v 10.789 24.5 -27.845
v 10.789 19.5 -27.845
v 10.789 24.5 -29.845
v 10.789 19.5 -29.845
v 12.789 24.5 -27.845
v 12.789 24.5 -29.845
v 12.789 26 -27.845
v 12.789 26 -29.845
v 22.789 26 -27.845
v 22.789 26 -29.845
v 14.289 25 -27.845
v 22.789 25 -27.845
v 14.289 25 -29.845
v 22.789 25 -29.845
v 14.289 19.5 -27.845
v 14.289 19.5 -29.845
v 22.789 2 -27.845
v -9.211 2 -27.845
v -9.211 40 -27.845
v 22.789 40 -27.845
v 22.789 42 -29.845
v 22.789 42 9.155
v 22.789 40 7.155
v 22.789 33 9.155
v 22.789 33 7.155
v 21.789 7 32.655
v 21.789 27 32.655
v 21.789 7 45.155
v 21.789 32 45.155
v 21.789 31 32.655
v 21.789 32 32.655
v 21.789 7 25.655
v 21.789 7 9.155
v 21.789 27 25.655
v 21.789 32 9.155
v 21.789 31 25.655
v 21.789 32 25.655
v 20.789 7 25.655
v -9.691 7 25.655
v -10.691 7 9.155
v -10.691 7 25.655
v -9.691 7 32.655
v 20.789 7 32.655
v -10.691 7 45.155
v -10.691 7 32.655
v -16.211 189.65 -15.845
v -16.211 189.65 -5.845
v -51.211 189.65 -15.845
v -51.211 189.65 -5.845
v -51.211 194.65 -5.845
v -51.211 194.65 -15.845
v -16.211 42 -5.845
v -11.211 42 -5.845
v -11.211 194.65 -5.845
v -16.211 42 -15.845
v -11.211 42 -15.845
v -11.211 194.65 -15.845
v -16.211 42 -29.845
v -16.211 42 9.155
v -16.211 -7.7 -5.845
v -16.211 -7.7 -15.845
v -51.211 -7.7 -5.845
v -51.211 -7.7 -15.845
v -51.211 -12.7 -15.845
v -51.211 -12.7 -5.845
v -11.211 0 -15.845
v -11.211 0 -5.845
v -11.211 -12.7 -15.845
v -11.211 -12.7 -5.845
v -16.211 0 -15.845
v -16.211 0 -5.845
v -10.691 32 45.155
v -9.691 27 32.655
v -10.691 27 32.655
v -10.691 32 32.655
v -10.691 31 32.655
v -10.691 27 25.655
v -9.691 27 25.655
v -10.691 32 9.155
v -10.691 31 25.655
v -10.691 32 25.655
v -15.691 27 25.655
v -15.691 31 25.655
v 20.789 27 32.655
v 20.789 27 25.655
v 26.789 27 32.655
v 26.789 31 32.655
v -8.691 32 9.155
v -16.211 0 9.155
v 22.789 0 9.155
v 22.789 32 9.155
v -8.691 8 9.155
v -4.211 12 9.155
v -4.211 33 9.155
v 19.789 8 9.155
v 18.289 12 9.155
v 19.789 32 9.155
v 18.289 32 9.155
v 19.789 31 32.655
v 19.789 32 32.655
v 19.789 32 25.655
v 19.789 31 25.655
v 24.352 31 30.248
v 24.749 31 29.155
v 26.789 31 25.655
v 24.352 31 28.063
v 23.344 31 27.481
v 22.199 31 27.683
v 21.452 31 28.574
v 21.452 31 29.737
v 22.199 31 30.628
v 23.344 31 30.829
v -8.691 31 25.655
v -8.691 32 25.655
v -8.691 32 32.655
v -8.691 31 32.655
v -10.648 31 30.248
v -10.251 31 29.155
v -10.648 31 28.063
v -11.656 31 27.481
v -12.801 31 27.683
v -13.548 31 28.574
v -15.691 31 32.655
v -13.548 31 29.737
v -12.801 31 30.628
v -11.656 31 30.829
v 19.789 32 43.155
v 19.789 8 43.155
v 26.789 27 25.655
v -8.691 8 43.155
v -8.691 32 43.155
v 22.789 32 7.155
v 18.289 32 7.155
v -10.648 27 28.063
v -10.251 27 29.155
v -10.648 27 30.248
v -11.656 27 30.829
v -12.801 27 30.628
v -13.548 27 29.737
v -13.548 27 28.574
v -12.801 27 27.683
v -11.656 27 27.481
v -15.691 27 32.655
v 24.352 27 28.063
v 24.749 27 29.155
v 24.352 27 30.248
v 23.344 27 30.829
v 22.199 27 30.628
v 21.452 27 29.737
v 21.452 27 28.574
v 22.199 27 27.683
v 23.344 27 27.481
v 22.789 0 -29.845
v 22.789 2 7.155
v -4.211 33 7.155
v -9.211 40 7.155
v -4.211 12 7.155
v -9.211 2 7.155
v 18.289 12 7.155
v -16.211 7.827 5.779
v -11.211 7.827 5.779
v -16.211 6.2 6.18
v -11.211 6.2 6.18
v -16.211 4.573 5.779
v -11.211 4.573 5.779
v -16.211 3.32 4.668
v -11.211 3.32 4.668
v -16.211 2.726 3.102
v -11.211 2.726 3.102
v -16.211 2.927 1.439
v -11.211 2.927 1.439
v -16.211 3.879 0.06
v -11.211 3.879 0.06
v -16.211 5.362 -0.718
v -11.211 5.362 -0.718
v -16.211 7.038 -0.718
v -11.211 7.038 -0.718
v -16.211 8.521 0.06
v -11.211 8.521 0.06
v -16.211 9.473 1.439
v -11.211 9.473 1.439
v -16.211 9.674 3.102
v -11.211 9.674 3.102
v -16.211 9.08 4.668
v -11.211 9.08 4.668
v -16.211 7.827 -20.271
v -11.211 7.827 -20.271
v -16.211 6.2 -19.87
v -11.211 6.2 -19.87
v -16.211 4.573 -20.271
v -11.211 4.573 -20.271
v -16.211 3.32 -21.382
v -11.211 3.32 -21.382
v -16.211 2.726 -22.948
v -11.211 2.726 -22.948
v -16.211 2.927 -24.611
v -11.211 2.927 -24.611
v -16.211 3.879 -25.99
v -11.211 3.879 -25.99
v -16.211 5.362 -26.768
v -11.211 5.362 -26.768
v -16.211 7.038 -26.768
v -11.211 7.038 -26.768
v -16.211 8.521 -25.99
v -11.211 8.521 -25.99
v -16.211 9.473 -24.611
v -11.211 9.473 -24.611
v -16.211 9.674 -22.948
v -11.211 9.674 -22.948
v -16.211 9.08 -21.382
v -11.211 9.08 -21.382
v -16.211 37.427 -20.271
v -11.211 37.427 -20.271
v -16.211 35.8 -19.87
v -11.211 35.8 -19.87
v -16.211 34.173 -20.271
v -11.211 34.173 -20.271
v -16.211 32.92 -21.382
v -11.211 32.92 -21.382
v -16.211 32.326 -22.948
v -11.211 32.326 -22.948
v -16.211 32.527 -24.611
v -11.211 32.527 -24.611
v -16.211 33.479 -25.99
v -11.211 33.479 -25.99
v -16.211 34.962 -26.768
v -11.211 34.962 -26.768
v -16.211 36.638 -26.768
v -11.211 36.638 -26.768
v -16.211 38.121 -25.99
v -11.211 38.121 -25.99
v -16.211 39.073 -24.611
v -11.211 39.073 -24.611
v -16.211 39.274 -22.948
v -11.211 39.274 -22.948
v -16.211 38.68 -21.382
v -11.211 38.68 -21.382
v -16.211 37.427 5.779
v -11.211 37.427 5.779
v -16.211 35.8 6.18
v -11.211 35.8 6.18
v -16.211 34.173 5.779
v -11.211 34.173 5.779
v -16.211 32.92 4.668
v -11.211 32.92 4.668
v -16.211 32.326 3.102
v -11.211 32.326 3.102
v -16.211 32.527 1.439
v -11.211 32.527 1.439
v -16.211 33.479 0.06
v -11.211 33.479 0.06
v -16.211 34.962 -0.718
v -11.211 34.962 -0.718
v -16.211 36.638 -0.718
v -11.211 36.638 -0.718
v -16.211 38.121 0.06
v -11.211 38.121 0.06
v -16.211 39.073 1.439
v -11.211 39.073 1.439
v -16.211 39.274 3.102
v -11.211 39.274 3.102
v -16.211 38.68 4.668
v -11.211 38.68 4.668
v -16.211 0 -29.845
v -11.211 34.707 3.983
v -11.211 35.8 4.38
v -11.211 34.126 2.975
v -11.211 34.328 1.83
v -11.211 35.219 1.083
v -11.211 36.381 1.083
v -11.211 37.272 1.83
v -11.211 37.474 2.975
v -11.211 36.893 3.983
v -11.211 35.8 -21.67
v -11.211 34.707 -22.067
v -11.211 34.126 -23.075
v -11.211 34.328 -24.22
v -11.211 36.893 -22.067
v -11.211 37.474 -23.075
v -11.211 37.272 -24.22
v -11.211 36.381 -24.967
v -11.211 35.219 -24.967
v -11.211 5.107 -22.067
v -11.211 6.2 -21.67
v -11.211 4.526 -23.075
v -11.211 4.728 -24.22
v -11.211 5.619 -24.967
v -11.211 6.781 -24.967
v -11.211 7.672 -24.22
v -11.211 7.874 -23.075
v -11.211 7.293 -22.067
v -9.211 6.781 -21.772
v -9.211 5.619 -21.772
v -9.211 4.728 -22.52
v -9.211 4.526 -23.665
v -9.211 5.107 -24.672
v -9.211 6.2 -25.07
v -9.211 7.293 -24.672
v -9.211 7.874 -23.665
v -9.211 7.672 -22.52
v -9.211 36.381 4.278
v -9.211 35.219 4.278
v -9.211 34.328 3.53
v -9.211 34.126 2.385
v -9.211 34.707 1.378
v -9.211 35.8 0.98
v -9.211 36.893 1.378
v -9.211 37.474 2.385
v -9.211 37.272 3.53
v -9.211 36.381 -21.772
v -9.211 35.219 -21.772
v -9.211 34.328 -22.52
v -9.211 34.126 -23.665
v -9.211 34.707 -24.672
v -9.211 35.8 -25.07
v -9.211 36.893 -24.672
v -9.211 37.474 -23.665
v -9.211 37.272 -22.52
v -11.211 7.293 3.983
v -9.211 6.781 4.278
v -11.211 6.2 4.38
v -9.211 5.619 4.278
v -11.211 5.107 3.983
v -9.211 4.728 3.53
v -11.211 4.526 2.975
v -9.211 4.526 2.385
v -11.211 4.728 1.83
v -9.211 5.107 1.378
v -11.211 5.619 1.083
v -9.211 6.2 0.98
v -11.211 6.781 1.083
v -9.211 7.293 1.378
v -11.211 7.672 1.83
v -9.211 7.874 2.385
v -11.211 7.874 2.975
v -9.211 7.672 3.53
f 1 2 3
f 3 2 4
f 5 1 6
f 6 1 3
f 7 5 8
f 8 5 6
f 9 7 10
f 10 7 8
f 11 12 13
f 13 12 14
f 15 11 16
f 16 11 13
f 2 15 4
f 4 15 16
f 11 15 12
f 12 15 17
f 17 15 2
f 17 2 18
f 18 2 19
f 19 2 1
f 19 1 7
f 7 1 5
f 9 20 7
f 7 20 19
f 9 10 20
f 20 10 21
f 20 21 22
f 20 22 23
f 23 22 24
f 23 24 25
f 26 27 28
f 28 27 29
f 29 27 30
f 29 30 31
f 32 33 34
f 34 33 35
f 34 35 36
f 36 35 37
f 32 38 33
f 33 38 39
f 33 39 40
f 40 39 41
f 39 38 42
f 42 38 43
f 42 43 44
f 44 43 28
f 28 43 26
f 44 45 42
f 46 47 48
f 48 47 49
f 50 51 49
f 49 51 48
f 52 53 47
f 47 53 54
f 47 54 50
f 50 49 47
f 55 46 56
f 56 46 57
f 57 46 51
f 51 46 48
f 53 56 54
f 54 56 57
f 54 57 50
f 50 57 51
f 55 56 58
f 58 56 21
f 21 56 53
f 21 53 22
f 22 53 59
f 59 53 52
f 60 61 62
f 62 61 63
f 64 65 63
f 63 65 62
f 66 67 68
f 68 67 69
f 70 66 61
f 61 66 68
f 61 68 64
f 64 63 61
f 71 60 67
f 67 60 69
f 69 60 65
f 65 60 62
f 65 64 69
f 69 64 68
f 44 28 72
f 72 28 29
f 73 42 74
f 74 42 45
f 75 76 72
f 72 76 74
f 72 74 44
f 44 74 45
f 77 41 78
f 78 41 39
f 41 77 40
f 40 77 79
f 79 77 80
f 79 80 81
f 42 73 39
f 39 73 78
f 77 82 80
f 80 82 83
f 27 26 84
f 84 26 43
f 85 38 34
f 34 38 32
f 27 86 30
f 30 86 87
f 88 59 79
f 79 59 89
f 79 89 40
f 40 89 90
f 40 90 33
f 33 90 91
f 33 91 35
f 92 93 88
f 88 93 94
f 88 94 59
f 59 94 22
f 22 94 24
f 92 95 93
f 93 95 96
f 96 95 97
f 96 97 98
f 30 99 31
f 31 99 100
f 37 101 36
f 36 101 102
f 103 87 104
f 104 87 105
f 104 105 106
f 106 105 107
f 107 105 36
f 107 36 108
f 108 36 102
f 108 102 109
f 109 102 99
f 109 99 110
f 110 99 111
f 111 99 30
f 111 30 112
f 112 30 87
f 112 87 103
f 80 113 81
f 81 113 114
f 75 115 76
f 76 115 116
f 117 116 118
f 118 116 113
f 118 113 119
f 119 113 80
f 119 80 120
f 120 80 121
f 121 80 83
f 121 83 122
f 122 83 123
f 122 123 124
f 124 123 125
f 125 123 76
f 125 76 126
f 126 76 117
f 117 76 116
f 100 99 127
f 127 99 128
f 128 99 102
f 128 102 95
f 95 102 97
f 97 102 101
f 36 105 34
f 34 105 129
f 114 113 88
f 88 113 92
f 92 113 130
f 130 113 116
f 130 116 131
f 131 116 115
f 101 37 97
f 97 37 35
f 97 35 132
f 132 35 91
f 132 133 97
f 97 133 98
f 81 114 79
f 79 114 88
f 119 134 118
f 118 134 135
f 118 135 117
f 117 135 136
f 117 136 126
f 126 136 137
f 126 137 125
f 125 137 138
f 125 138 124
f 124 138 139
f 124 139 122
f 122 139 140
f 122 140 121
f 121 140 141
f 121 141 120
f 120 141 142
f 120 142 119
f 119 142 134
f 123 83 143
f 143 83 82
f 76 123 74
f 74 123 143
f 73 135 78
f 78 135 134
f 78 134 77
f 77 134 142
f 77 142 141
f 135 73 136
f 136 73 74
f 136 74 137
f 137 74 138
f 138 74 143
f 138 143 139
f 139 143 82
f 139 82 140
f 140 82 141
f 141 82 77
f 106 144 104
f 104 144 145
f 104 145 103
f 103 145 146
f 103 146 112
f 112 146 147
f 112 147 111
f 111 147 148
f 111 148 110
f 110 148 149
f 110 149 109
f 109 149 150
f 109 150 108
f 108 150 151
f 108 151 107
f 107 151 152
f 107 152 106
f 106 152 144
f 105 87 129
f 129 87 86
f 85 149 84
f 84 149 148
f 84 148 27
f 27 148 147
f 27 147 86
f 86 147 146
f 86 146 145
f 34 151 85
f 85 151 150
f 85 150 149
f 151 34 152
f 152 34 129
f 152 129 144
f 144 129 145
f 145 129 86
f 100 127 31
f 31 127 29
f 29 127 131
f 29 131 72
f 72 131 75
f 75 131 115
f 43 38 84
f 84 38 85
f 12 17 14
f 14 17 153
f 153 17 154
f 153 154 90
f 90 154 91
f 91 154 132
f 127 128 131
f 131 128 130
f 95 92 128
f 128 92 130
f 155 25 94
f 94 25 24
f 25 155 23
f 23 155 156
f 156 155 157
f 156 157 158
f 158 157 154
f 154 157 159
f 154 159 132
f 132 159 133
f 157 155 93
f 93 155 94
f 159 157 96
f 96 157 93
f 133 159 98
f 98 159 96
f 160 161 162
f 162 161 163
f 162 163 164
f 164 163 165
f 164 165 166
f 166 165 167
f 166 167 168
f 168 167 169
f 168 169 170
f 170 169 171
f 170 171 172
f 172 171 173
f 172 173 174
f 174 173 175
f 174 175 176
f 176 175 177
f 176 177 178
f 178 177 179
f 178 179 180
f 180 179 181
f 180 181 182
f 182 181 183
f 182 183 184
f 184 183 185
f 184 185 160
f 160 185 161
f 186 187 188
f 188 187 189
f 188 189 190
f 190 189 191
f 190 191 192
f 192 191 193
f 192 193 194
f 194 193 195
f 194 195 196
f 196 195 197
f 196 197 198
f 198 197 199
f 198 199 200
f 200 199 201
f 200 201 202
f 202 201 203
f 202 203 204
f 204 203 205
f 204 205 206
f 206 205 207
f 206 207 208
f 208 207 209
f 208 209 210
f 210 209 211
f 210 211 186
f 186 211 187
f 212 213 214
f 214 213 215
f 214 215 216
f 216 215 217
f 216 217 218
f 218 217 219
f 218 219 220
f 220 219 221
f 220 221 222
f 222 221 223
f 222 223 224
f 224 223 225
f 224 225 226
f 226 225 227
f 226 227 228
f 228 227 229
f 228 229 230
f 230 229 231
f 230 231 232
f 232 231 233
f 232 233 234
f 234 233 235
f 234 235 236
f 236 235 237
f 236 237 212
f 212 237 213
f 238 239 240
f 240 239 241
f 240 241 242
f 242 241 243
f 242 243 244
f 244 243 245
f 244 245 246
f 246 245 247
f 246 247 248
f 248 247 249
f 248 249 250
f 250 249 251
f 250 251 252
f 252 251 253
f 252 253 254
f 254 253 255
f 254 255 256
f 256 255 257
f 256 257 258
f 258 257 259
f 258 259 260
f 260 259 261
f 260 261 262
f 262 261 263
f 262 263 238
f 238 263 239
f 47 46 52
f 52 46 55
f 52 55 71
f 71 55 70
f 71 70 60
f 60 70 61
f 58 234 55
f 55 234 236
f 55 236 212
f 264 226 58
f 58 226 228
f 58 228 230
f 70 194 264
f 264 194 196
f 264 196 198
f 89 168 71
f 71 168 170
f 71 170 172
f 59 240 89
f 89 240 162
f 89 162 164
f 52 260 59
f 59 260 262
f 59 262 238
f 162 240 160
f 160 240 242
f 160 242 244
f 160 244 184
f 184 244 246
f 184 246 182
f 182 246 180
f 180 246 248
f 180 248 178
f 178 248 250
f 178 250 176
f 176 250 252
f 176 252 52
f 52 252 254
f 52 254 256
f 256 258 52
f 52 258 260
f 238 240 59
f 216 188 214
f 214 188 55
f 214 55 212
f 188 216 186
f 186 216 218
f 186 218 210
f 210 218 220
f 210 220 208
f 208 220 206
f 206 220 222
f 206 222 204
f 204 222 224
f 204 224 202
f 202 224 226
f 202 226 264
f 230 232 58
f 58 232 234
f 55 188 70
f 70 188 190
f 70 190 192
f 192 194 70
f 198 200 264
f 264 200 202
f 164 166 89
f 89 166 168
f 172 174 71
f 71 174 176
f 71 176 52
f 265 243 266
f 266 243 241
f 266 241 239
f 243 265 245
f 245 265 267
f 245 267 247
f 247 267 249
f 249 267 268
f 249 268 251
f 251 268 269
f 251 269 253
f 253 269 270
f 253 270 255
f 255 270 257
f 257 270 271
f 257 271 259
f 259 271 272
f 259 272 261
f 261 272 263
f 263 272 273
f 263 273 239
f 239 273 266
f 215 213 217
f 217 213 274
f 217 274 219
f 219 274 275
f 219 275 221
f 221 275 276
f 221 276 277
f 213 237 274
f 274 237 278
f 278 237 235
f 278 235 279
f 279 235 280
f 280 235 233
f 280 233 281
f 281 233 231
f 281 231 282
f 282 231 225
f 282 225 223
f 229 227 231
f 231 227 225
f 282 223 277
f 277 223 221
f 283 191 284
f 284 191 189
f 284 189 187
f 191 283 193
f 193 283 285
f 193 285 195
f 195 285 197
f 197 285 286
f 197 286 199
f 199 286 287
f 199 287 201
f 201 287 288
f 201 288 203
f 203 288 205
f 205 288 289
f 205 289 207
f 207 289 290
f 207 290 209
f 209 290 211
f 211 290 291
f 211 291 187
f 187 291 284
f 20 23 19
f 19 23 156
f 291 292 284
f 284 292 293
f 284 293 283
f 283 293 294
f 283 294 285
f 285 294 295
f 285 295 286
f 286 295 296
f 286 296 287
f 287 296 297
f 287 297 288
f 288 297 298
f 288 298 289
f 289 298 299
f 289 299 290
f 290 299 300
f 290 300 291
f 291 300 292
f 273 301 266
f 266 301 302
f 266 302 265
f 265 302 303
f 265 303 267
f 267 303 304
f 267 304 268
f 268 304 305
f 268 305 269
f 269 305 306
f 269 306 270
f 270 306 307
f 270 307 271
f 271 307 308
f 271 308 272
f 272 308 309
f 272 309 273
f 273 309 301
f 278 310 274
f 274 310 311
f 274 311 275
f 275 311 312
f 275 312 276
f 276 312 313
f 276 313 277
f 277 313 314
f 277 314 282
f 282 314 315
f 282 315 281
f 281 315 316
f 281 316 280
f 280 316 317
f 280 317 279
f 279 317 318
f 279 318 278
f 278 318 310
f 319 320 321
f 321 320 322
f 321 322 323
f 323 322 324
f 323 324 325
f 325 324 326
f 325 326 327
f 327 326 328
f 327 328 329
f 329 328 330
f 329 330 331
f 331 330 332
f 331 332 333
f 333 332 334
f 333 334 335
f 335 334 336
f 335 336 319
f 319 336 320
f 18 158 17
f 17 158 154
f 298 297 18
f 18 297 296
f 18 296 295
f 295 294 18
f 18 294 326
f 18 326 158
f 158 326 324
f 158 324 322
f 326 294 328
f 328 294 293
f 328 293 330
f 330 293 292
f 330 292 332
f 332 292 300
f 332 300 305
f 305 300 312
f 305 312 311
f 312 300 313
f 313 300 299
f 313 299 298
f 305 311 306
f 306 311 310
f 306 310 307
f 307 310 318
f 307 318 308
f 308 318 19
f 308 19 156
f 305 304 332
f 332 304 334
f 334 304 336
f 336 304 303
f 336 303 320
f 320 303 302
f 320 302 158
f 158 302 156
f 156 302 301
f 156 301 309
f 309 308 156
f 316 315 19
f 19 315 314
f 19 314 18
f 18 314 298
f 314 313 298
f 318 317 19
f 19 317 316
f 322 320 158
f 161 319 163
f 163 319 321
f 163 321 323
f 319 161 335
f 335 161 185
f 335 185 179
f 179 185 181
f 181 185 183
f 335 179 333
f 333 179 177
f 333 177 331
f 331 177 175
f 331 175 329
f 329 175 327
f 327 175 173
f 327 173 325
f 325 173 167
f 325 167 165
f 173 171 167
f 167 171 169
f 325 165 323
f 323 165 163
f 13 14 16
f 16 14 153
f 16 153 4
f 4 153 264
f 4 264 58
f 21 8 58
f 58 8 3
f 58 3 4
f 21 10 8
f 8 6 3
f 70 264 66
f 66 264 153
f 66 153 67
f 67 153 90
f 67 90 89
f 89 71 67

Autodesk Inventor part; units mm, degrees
ref_plane "YZ Plane" through (0, 0, 0) normal (1, 0, 0) x (0, 1, 0)
ref_plane "XZ Plane" through (0, 0, 0) normal (0, 1, 0) x (-1, 0, 0)
ref_plane "XY Plane" through (0, 0, 0) normal (0, 0, 1) x (1, 0, 0)
sketch "Sketch1" plane through (0, 0, 0) normal (0, 1, 0) x (-1, 0, 0)
  line L0 (9.2107, 7.1553) -> (-19.7893, 7.1553)
  line L1 (-19.7893, 7.1553) -> (-19.7893, -27.8447)
  line L2 (-19.7893, -27.8447) -> (9.2107, -27.8447)
  line L3 (9.2107, -27.8447) -> (9.2107, 7.1553)
  line L4 (9.2107, 7.1553) -> (11.2107, 7.1553)
  line L5 (11.2107, 7.1553) -> (11.2107, 9.1553)
  line L6 (11.2107, 9.1553) -> (-21.7893, 9.1553)
  line L7 (-21.7893, 9.1553) -> (-21.7893, -29.8447)
  line L8 (-21.7893, -29.8447) -> (11.2107, -29.8447)
  line L9 (11.2107, -29.8447) -> (11.2107, 7.1553)
  point P0 (0, 0)
  dimension "d0" = 29
  dimension "d1" = 35
  dimension "d2" = 2
  dimension "d3" = 2
  dimension "d4" = 33
  dimension "d5" = 39
extrude "Extrusion1" add sketch "Sketch1" along normal blind 2 contours L3 L2 L1 L0
extrude "Extrusion2" add sketch "Sketch1" along normal blind 40
sketch "Sketch2" plane through (21.7893, 0, -29.8447) normal (1, 0, 0) x (0, 0, -1)
  line L0 (-37, 2) -> (-37, 40) projected
  line L1 (-37, 40) -> (-37, 2)
  line L2 (-2, 2) -> (-2, 40) projected
  line L3 (-37, 2) -> (-2, 2)
  line L4 (-2, 2) -> (-2, 40)
  line L5 (-37, 40) -> (-2, 40) projected
  line L6 (-2, 40) -> (-37, 40)
extrude "Extrusion3" cut sketch "Sketch2" against normal blind 10
sketch "Sketch3" plane through (-9.2107, 2, -27.8447) normal (1, 0, 0) x (0, 0, -1)
  line L0 (0, 0) -> (0, 38) projected
  line L1 (0, 0) -> (0, 4.2)
  line L2 (0, 4.2) -> (-4.475, 4.2)
  line L3 (-35, 0) -> (-35, 38) projected
  line L4 (-4.475, 4.2) -> (-30.525, 4.2)
  line L5 (-30.525, 4.2) -> (-30.525, 33.8)
  line L6 (-30.525, 33.8) -> (-4.475, 33.8)
  line L7 (-4.475, 33.8) -> (-4.475, 4.2)
  point P0 (-27.8447, -2)
  dimension "d12" = 4.2
  dimension "d13" = 4.475
  dimension "d14" = 26.05
  dimension "d15" = 29.6
hole "Hole1" at (-9.2107, 35.8, 2.6803) at (-9.2107, 35.8, -23.3697) at (-9.2107, 6.2, -23.3697) at (-9.2107, 6.2, 2.6803) direction (-1, 0, 0) diameter 3.4 end through all clearance for "Flat Head Machine Screw" size "M3" standard "Ansi Metric M Profile"
sketch "Sketch4" plane through (-11.2107, 2, -27.8447) normal (1, 0, 0) x (0, 0, -1)
  line L0 (-37, 38) -> (-35, 38) projected
  line L1 (-37, 38) -> (2, 38)
  line L2 (2, 38) -> (2, 40)
  line L3 (2, 40) -> (-37, 40)
  line L4 (-37, 40) -> (-37, 38)
  point P0 (-27.8447, -2)
  dimension "d23" = 39
  dimension "d24" = 2
extrude "Extrusion4" add sketch "Sketch4" along normal blind 33
sketch "Sketch5" plane through (21.7893, 0, 9.1553) normal (1, 0, 0) x (0, 0, -1)
  point P0 (9.1553, 0)
sketch "Sketch6" plane through (-11.2107, 0, -29.8447) normal (-1, 0, 0) x (0, 0, 1)
  point P0 (29.8447, 0)
sketch "Sketch7" plane through (-11.2107, 0, -29.8447) normal (-1, 0, 0) x (0, 0, 1)
  circle A0 centre (6.475, 6.2) radius 1.7 projected
  circle A1 centre (32.525, 35.8) radius 1.7 projected
  circle A2 centre (6.475, 35.8) radius 1.7 projected
  circle A3 centre (32.525, 6.2) radius 1.7 projected
  line L0 (0, 0) -> (39, 0) projected
  line L1 (39, 0) -> (39, 42) projected
  line L2 (0, 42) -> (39, 42) projected
  line L3 (0, 0) -> (0, 42) projected
  circle A4 centre (6.475, 6.2) radius 1.7 projected
  circle A5 centre (6.475, 6.2) radius 3.5
  circle A6 centre (6.475, 35.8) radius 3.5
  circle A7 centre (32.525, 35.8) radius 3.5
  circle A8 centre (32.525, 6.2) radius 1.7 projected
  circle A9 centre (32.525, 6.2) radius 3.5
  point P0 (29.8447, 0)
  dimension "d27" = 7
  dimension "d28" = 7
  dimension "d29" = 7
  dimension "d30" = 7
extrude "Extrusion5" add sketch "Sketch7" along normal blind 5 contours L3 L2 L1 L0
sketch "Sketch8" plane through (21.7893, 0, 9.1553) normal (0, 0, 1) x (1, 0, 0)
  line L0 (0, 0) -> (0, 42) projected
  line L1 (0, 42) -> (0, 32)
  line L2 (0, 32) -> (-3.5, 32)
  line L3 (-3.5, 32) -> (-3.5, 12)
  line L4 (-3.5, 32) -> (16.5, 32) construction
  line L5 (-3.5, 12) -> (-26, 12)
  line L6 (-26, 12) -> (-26, 32)
  line L7 (-26, 32) -> (-3.5, 32)
  point P0 (-21.7893, 0)
  dimension "d33" = 10
  dimension "d34" = 3.5
  dimension "d35" = 20
  dimension "d36" = 90
  dimension "d37" = 22.5
extrude "Extrusion6" cut sketch "Sketch8" against normal blind 10
sketch "Sketch9" plane through (21.7893, 0, 9.1553) normal (0, 0, 1) x (1, 0, 0)
  line L0 (-26, 32) -> (-3.5, 32) projected
  line L1 (-26, 32) -> (-26, 33)
  line L2 (-26, 33) -> (0, 33)
  line L3 (0, 2) -> (0, 40) projected
  line L4 (0, 32) -> (-10.0622, 32)
  point P0 (-21.7893, 0)
  dimension "d40" = 1
extrude "Extrusion7" cut sketch "Sketch9" against normal blind 10
sketch "Sketch10" plane through (-16.2107, 42, 9.1553) normal (0, 0, 1) x (1, 0, 0)
  line L0 (38, -10) -> (34.5, -10) projected
  line L1 (38, -10) -> (38, -34)
  line L2 (38, -40) -> (38, -10) projected
  line L3 (0, -42) -> (0, 0) projected
  line L4 (38, -34) -> (7.52, -34)
  line L5 (7, -40) -> (7, -2) projected
  line L6 (7.52, -34) -> (7.52, -10)
  line L7 (7.52, -10) -> (38, -10)
  line L8 (38, -34) -> (38, -35)
  line L9 (38, -35) -> (6.52, -35)
  line L10 (6.52, -35) -> (6.52, -9)
  line L11 (6.52, -9) -> (38, -9)
  line L12 (38, -2) -> (38, -40) projected
  line L13 (38, -10) -> (38, -9)
  point P0 (16.2107, -42)
  dimension "d43" = 24
  dimension "d44" = 30.48
  dimension "d45" = 1
  dimension "d46" = 31.48
  dimension "d47" = 26
extrude "Extrusion8" add sketch "Sketch10" along normal blind 34 contours L0 L7 L6 L4 L2 L9 L5 L11 L12 | L5 L9 L10 L11
sketch "Sketch11" plane through (-9.6907, 9, 9.1553) normal (1, 0, 0) x (0, 0, -1)
  line L0 (-34, -2) -> (-34, -1) projected
  line L1 (-34, -2) -> (-35, -2)
  line L2 (-35, -2) -> (-35, 24)
  line L3 (0, 24) -> (-34, 24) projected
  line L4 (-35, 24) -> (-34, 24)
  line L5 (-34, 24) -> (-34, -2)
  point P0 (9.1553, -9)
  point P1 (0, 26)
  point P2 (-34, -1)
  dimension "d50" = 1
extrude "Extrusion9" add sketch "Sketch11" along normal blind 29.48
sketch "Sketch16" plane through (-9.6907, 7, 9.1553) normal (0, -1, 0) x (1, 0, 0)
  line L0 (0, 35) -> (29.48, 35) projected
  line L1 (29.48, 35) -> (30.48, 35)
  line L2 (30.48, 35) -> (30.48, 0)
  line L3 (30.48, 0) -> (29.48, 0)
  line L4 (29.48, 0) -> (29.48, 35)
  point P0 (9.6907, -9.1553)
  dimension "d69" = 1
  dimension "d70" = 35
extrude "Extrusion14" add sketch "Sketch16" against normal blind 26
sketch "Sketch17" plane through (-4.2107, 33, 9.1553) normal (0, 1, 0) x (1, 0, 0)
  line L0 (24, 0) -> (24, -34) projected
  line L1 (-4.48, -34) -> (24, -34) projected
  line L2 (24, -34) -> (-4.48, -34)
  line L3 (-4.48, 0) -> (-4.48, -34) projected
  line L4 (-4.48, -34) -> (-4.48, 0)
  line L5 (-4.48, 0) -> (26, 0)
  line L6 (25, -34) -> (25, 0) projected
  line L7 (0, 0) -> (26, 0) projected
  line L8 (-5.48, 0) -> (0, 0) projected
  line L9 (-5.48, 0) -> (-5.48, -35) projected
  line L10 (-5.48, -35) -> (25, -35) projected
  line L11 (25, -35) -> (25, -34) projected
  line L12 (26, -34) -> (25, -34) projected
  line L13 (26, 0) -> (26, -34) projected
  point P0 (4.2107, 9.1553)
extrude "Extrusion15" cut sketch "Sketch17" against normal blind 10 contours L0 L1 L3 L5
sketch "Sketch18" plane through (-9.6907, 33, 44.1553) normal (0, 1, 0) x (1, 0, 0)
  line L0 (1, 1) -> (1, 35) projected
  line L1 (0, 35) -> (1, 35) projected
  line L2 (0, 35) -> (0, 0) projected
  line L3 (0, 0) -> (30.48, 0) projected
  line L4 (30.48, 0) -> (30.48, 1) projected
  line L5 (29.48, 1) -> (1, 1) projected
  line L6 (31.48, 1) -> (30.48, 1) projected
  line L7 (31.48, 35) -> (31.48, 1) projected
  line L8 (29.48, 35) -> (29.48, 1) projected
  line L9 (29.48, 35) -> (31.48, 35) projected
  point P0 (9.6907, 44.1553)
extrude "Extrusion16" cut sketch "Sketch18" against normal blind 1
sketch "Sketch19" plane through (21.7893, 0, 9.1553) normal (1, 0, 0) x (0, 0, -1)
  line L0 (0, 0) -> (0, 7) projected
  line L1 (0, 0) -> (39, 0) projected
  line L2 (39, 0) -> (39, 42) projected
  line L3 (39, 42) -> (0, 42) projected
  line L4 (0, 33) -> (0, 42) projected
  line L5 (0, 33) -> (2, 33) projected
  line L6 (2, 33) -> (2, 40) projected
  line L7 (2, 40) -> (37, 40) projected
  line L8 (37, 40) -> (37, 2) projected
  line L9 (37, 2) -> (2, 2) projected
  line L10 (2, 2) -> (2, 32) projected
  line L11 (2, 32) -> (0, 32) projected
  line L12 (0, 8) -> (0, 32) projected
  line L13 (0, 8) -> (-34, 8) projected
  line L14 (-34, 7) -> (-34, 8) projected
  line L15 (0, 7) -> (-34, 7) projected
  line L16 (0, 7) -> (0, 8)
  line L17 (0, 0) -> (0, 42) projected
  point P0 (9.1553, 0)
extrude "Extrusion17" add sketch "Sketch19" along normal blind 1 contours L0 L16 L12 L11 L10 L9 L8 L7 L6 L5 L4 L3 L2 L1
sketch "Sketch20" plane through (-9.6907, 32, 44.1553) normal (0, 1, 0) x (1, 0, 0)
  line L0 (29.48, 1) -> (1, 1) projected
  line L1 (15.24, 1) -> (15.24, 15)
  line L2 (15.24, 15) -> (32.74, 15)
  line L3 (32.74, 15) -> (-2.26, 15)
  line L4 (1, 35) -> (1, 1) projected
  line L5 (1, 15) -> (1, 11.5)
  line L6 (1, 11.5) -> (-6, 11.5)
  line L7 (-6, 11.5) -> (-6, 18.5)
  line L8 (-6, 18.5) -> (1, 18.5)
  line L9 (1, 11.5) -> (1, 18.5)
  line L10 (29.48, 1) -> (29.48, 35) projected
  line L11 (29.48, 18.5) -> (36.48, 18.5)
  line L12 (36.48, 18.5) -> (36.48, 11.5)
  line L13 (36.48, 11.5) -> (29.48, 11.5)
  circle A0 centre (-2.26, 15) radius 1.7
  circle A1 centre (32.74, 15) radius 1.7
  point P0 (9.6907, 44.1553)
  point P1 (30.48, 1)
  dimension "d79" = 14
  dimension "d80" = 17.5
  dimension "d81" = 90
  dimension "d82" = 35
  dimension "d83" = 3.5
  dimension "d84" = 7
  dimension "d85" = 7
  dimension "d86" = 7
  dimension "d87" = 3.4
  dimension "d88" = 3.4
extrude "Extrusion18" add sketch "Sketch20" against normal blind 5 contours L10 L11 L12 L13 | L6 L7 L8 L4
sketch "Sketch21" plane through (-8.6907, 32, 43.1553) normal (0, 1, 0) x (1, 0, 0)
  line L0 (29.48, 17.5) -> (29.48, 10.5) projected
  line L1 (29.48, 17.5) -> (28.48, 17.5)
  line L2 (28.48, 0) -> (28.48, 34) projected
  line L3 (35.48, 10.5) -> (29.48, 10.5) projected
  line L4 (29.48, 10.5) -> (28.48, 10.5)
  line L5 (28.48, 10.5) -> (28.48, 17.5)
  line L6 (-1, 17.5) -> (-7, 17.5) projected
  line L7 (-1, 17.5) -> (0, 17.5)
  line L8 (0, 34) -> (0, 0) projected
  line L9 (-1, 10.5) -> (-1, 17.5)
  line L10 (-1, 34) -> (-1, -1) projected
  line L11 (-1, -1) -> (-1, 10.5) projected
  line L12 (-1, 10.5) -> (0, 10.5)
  line L13 (0, 10.5) -> (0, 17.5)
  line L14 (29.48, 10.5) -> (29.48, -1) projected
  line L15 (26.98, 36) -> (31.48, 36) projected
  line L16 (26.98, 34) -> (26.98, 36) projected
  line L17 (28.48, 34) -> (26.98, 34) projected
  line L18 (0, 34) -> (0, 0) projected
  line L19 (-1, 34) -> (0, 34) projected
  line L20 (-1, 17.5) -> (-1, 34) projected
  line L21 (-1, 17.5) -> (-7, 17.5) projected
  line L22 (-7, 17.5) -> (-7, 10.5) projected
  line L23 (-7, 10.5) -> (-1, 10.5) projected
  line L24 (-1, -1) -> (-1, 10.5) projected
  line L25 (29.48, -1) -> (-1, -1) projected
  line L26 (31.48, 34) -> (29.48, 34) projected
  line L27 (31.48, 36) -> (31.48, 34) projected
  line L28 (28.48, 0) -> (28.48, 34) projected
  line L29 (0, 0) -> (28.48, 0) projected
  line L30 (29.48, 10.5) -> (35.48, 10.5) projected
  line L31 (35.48, 10.5) -> (35.48, 17.5) projected
  line L32 (35.48, 17.5) -> (29.48, 17.5) projected
  line L33 (29.48, 34) -> (29.48, 17.5) projected
  point P0 (8.6907, 43.1553)
  point P1 (30.1371, 10.5)
  point P2 (29.48, 17.5)
  point P3 (-7, 17.5)
extrude "Extrusion19" cut sketch "Sketch21" against normal blind 1 contours L32 L31 L3 L0 | L0 L4 L2 L1 | L23 L22 L6 L9 | L9 L7 L8 L12
sketch "Sketch30" plane through (20.7893, 7, 44.1553) normal (1, 0, 0) x (0, 0, -1)
  line L0 (11.5, 25) -> (0, 25) projected
  line L1 (0, 0) -> (0, 25) projected
  line L2 (1, 0) -> (0, 0) projected
  line L3 (1, 0) -> (0, 0) projected
  line L4 (35, 0) -> (37, 0)
  line L5 (1, 1) -> (1, 0) projected
  line L6 (35, 1) -> (1, 1) projected
  line L7 (35, 25) -> (35, 1) projected
  line L8 (35, 25) -> (18.5, 25) projected
  line L9 (18.5, 24) -> (18.5, 20) projected
  line L10 (18.5, 20) -> (11.5, 20) projected
  line L11 (11.5, 20) -> (11.5, 24) projected
  line L12 (18.5, 25) -> (18.5, 24) projected
  line L13 (11.5, 24) -> (11.5, 25) projected
  line L14 (18.5, 20) -> (18.5, 0)
  line L15 (35, 0) -> (0, 0) projected
  line L16 (11.5, 20) -> (18.5, 20) projected
  line L17 (11.5, 20) -> (11.5, 0)
  line L18 (35, 1) -> (1, 1) projected
  line L19 (11.5, 1) -> (11.5, 0)
  line L20 (35, 0) -> (1, 0) projected
  line L21 (18.5, 1) -> (18.5, 0)
  point P0 (44.1553, -7)
extrude "Extrusion25" add sketch "Sketch30" along normal blind 1 contours L13 L11 L17 L6 L5 L2 L1 L0 | L9 L12 L8 L7 L6 L14
sketch "Sketch31" plane through (-9.6907, 7, 9.1553) normal (-1, 0, 0) x (0, 0, 1)
  line L0 (16.5, 20) -> (16.5, 24) projected
  line L1 (16.5, 25) -> (0, 25) projected
  line L2 (0, 0) -> (0, 25) projected
  line L3 (0, 0) -> (35, 0) projected
  line L4 (35, 25) -> (35, 0) projected
  line L5 (35, 25) -> (23.5, 25) projected
  line L6 (23.5, 24) -> (23.5, 20) projected
  line L7 (23.5, 20) -> (16.5, 20) projected
  line L8 (23.5, 25) -> (23.5, 24) projected
  line L9 (16.5, 24) -> (16.5, 25) projected
  line L10 (0, 0) -> (35, 0) projected
  line L11 (16.5, 20) -> (23.5, 20)
  line L12 (23.5, 20) -> (23.5, 0)
  line L13 (23.5, 0) -> (16.5, 0)
  line L14 (16.5, 0) -> (16.5, 20)
  point P0 (-9.1553, -7)
  point P1 (23.5, 20)
  point P2 (23.5, 0)
  point P3 (16.5, 0)
extrude "Extrusion26" add sketch "Sketch31" along normal blind 1 contours L14 L3 L2 L1 L9 L0 | L6 L8 L5 L4 L3 L12
sketch "Sketch32" plane through (21.7893, 7, 44.1553) normal (0, 0, 1) x (1, 0, 0)
  line L0 (0, 25) -> (-32.48, 25) projected
  line L1 (-32.48, 0) -> (-32.48, 25) projected
  line L2 (-32.48, 0) -> (0, 0) projected
  line L3 (0, 25) -> (0, 0) projected
  point P0 (-21.7893, -7)
extrude "Extrusion27" add sketch "Sketch32" along normal blind 1
sketch "Sketch25" plane through (0, 0, 0) normal (0, -1, 0) x (1, 0, 0)
  line L0 (-16.2107, -29.8447) -> (-16.2107, 9.1553) projected
  line L1 (-16.2107, 9.1553) -> (-16.2107, -5.8447)
  line L2 (-16.2107, -5.8447) -> (-16.2107, -15.8447)
  line L3 (-16.2107, -15.8447) -> (-11.2107, -15.8447)
  line L4 (-11.2107, -15.8447) -> (-11.2107, -5.8447)
  line L5 (-11.2107, -5.8447) -> (-16.2107, -5.8447)
  point P0 (0, 0)
  dimension "d118" = 15
  dimension "d119" = 10
  dimension "d120" = 5
extrude "Extrusion21" add sketch "Sketch25" along normal blind 12.7
sketch "Sketch26" plane through (-16.2107, 0, -29.8447) normal (-1, 0, 0) x (0, 0, 1)
  line L0 (24, -12.7) -> (14, -12.7) projected
  line L1 (24, -12.7) -> (24, -7.7)
  line L2 (24, 0) -> (24, -12.7) projected
  line L3 (24, -7.7) -> (14, -7.7)
  line L4 (14, 0) -> (14, -12.7) projected
  line L5 (14, -12.7) -> (14, -7.7)
  point P0 (29.8447, 0)
  dimension "d123" = 5
extrude "Extrusion22" add sketch "Sketch26" along normal blind 35
sketch "Sketch27" plane through (-16.2107, 42, 9.1553) normal (0, 1, 0) x (1, 0, 0)
  line L0 (0, 25) -> (0, 15) projected
  line L1 (5, 25) -> (0, 25) projected
  line L2 (0, 25) -> (5, 25)
  line L3 (0, 15) -> (5, 15) projected
  line L4 (5, 25) -> (5, 15)
  line L5 (5, 15) -> (0, 15)
  point P0 (16.2107, 9.1553)
extrude "Extrusion23" add sketch "Sketch27" along normal blind 152.6502
sketch "Sketch28" plane through (-16.2107, 0, -29.8447) normal (-1, 0, 0) x (0, 0, 1)
  line L0 (14, 194.6502) -> (24, 194.6502) projected
  line L1 (14, 194.6502) -> (14, 189.6502)
  line L2 (14, 42) -> (14, 194.6502) projected
  line L3 (14, 189.6502) -> (24, 189.6502)
  line L4 (24, 42) -> (24, 194.6502) projected
  line L5 (24, 194.6502) -> (14, 194.6502)
  point P0 (29.8447, 0)
  dimension "d128" = 5
extrude "Extrusion24" add sketch "Sketch28" along normal blind 35
sketch "Sketch34" plane through (21.7893, 7, 9.1553) normal (1, 0, 0) x (0, 0, -1)
  line L0 (-16.5, 1) -> (-23.5, 1) projected
  line L1 (-23.5, 1) -> (-23.5, 0)
  line L2 (0, 0) -> (-36, 0) projected
  line L3 (-23.5, 1) -> (-23.5, 20) projected
  line L4 (-16.5, 1) -> (-16.5, 20) projected
  line L5 (-23.5, 1) -> (-16.5, 1)
  line L6 (-16.5, 20) -> (-16.5, 0) projected
  line L7 (-16.5, 1) -> (-16.5, 0)
  line L8 (-16.5, 0) -> (-23.5, 0)
  point P0 (9.1553, -7)
extrude "Extrusion28" cut sketch "Sketch34" against normal blind 1
sketch "Sketch35" plane through (-16.2107, 0, -29.8447) normal (0, 0, -1) x (-1, 0, 0)
  line L0 (0, 42) -> (-39, 42) projected
  line L1 (-39, 42) -> (-39, 26)
  line L2 (-39, 0) -> (-39, 42) projected
  line L3 (-39, 26) -> (-29, 26)
  line L4 (-29, 26) -> (-29, 24.5)
  line L5 (-29, 24.5) -> (-27, 24.5)
  line L6 (-27, 24.5) -> (-27, 19.5)
  line L7 (-27, 19.5) -> (-30.5, 19.5)
  line L8 (-30.5, 24.5) -> (-39, 24.5)
  line L9 (-30.5, 19.5) -> (-30.5, 25)
  line L10 (-30.5, 25) -> (-39, 25)
  line L11 (-39, 26) -> (-39, 25)
  point P0 (-16.2107, 0)
  dimension "d139" = 16
  dimension "d140" = 10
  dimension "d141" = 1.5
  dimension "d142" = 2
  dimension "d143" = 5
  dimension "d144" = 3.5
  dimension "d145" = 5.5
extrude "Extrusion29" cut sketch "Sketch35" against normal blind 10 contours L2 L3 L4 L5 L6 L7 L9 L10
properties part number "shell 5.0"
